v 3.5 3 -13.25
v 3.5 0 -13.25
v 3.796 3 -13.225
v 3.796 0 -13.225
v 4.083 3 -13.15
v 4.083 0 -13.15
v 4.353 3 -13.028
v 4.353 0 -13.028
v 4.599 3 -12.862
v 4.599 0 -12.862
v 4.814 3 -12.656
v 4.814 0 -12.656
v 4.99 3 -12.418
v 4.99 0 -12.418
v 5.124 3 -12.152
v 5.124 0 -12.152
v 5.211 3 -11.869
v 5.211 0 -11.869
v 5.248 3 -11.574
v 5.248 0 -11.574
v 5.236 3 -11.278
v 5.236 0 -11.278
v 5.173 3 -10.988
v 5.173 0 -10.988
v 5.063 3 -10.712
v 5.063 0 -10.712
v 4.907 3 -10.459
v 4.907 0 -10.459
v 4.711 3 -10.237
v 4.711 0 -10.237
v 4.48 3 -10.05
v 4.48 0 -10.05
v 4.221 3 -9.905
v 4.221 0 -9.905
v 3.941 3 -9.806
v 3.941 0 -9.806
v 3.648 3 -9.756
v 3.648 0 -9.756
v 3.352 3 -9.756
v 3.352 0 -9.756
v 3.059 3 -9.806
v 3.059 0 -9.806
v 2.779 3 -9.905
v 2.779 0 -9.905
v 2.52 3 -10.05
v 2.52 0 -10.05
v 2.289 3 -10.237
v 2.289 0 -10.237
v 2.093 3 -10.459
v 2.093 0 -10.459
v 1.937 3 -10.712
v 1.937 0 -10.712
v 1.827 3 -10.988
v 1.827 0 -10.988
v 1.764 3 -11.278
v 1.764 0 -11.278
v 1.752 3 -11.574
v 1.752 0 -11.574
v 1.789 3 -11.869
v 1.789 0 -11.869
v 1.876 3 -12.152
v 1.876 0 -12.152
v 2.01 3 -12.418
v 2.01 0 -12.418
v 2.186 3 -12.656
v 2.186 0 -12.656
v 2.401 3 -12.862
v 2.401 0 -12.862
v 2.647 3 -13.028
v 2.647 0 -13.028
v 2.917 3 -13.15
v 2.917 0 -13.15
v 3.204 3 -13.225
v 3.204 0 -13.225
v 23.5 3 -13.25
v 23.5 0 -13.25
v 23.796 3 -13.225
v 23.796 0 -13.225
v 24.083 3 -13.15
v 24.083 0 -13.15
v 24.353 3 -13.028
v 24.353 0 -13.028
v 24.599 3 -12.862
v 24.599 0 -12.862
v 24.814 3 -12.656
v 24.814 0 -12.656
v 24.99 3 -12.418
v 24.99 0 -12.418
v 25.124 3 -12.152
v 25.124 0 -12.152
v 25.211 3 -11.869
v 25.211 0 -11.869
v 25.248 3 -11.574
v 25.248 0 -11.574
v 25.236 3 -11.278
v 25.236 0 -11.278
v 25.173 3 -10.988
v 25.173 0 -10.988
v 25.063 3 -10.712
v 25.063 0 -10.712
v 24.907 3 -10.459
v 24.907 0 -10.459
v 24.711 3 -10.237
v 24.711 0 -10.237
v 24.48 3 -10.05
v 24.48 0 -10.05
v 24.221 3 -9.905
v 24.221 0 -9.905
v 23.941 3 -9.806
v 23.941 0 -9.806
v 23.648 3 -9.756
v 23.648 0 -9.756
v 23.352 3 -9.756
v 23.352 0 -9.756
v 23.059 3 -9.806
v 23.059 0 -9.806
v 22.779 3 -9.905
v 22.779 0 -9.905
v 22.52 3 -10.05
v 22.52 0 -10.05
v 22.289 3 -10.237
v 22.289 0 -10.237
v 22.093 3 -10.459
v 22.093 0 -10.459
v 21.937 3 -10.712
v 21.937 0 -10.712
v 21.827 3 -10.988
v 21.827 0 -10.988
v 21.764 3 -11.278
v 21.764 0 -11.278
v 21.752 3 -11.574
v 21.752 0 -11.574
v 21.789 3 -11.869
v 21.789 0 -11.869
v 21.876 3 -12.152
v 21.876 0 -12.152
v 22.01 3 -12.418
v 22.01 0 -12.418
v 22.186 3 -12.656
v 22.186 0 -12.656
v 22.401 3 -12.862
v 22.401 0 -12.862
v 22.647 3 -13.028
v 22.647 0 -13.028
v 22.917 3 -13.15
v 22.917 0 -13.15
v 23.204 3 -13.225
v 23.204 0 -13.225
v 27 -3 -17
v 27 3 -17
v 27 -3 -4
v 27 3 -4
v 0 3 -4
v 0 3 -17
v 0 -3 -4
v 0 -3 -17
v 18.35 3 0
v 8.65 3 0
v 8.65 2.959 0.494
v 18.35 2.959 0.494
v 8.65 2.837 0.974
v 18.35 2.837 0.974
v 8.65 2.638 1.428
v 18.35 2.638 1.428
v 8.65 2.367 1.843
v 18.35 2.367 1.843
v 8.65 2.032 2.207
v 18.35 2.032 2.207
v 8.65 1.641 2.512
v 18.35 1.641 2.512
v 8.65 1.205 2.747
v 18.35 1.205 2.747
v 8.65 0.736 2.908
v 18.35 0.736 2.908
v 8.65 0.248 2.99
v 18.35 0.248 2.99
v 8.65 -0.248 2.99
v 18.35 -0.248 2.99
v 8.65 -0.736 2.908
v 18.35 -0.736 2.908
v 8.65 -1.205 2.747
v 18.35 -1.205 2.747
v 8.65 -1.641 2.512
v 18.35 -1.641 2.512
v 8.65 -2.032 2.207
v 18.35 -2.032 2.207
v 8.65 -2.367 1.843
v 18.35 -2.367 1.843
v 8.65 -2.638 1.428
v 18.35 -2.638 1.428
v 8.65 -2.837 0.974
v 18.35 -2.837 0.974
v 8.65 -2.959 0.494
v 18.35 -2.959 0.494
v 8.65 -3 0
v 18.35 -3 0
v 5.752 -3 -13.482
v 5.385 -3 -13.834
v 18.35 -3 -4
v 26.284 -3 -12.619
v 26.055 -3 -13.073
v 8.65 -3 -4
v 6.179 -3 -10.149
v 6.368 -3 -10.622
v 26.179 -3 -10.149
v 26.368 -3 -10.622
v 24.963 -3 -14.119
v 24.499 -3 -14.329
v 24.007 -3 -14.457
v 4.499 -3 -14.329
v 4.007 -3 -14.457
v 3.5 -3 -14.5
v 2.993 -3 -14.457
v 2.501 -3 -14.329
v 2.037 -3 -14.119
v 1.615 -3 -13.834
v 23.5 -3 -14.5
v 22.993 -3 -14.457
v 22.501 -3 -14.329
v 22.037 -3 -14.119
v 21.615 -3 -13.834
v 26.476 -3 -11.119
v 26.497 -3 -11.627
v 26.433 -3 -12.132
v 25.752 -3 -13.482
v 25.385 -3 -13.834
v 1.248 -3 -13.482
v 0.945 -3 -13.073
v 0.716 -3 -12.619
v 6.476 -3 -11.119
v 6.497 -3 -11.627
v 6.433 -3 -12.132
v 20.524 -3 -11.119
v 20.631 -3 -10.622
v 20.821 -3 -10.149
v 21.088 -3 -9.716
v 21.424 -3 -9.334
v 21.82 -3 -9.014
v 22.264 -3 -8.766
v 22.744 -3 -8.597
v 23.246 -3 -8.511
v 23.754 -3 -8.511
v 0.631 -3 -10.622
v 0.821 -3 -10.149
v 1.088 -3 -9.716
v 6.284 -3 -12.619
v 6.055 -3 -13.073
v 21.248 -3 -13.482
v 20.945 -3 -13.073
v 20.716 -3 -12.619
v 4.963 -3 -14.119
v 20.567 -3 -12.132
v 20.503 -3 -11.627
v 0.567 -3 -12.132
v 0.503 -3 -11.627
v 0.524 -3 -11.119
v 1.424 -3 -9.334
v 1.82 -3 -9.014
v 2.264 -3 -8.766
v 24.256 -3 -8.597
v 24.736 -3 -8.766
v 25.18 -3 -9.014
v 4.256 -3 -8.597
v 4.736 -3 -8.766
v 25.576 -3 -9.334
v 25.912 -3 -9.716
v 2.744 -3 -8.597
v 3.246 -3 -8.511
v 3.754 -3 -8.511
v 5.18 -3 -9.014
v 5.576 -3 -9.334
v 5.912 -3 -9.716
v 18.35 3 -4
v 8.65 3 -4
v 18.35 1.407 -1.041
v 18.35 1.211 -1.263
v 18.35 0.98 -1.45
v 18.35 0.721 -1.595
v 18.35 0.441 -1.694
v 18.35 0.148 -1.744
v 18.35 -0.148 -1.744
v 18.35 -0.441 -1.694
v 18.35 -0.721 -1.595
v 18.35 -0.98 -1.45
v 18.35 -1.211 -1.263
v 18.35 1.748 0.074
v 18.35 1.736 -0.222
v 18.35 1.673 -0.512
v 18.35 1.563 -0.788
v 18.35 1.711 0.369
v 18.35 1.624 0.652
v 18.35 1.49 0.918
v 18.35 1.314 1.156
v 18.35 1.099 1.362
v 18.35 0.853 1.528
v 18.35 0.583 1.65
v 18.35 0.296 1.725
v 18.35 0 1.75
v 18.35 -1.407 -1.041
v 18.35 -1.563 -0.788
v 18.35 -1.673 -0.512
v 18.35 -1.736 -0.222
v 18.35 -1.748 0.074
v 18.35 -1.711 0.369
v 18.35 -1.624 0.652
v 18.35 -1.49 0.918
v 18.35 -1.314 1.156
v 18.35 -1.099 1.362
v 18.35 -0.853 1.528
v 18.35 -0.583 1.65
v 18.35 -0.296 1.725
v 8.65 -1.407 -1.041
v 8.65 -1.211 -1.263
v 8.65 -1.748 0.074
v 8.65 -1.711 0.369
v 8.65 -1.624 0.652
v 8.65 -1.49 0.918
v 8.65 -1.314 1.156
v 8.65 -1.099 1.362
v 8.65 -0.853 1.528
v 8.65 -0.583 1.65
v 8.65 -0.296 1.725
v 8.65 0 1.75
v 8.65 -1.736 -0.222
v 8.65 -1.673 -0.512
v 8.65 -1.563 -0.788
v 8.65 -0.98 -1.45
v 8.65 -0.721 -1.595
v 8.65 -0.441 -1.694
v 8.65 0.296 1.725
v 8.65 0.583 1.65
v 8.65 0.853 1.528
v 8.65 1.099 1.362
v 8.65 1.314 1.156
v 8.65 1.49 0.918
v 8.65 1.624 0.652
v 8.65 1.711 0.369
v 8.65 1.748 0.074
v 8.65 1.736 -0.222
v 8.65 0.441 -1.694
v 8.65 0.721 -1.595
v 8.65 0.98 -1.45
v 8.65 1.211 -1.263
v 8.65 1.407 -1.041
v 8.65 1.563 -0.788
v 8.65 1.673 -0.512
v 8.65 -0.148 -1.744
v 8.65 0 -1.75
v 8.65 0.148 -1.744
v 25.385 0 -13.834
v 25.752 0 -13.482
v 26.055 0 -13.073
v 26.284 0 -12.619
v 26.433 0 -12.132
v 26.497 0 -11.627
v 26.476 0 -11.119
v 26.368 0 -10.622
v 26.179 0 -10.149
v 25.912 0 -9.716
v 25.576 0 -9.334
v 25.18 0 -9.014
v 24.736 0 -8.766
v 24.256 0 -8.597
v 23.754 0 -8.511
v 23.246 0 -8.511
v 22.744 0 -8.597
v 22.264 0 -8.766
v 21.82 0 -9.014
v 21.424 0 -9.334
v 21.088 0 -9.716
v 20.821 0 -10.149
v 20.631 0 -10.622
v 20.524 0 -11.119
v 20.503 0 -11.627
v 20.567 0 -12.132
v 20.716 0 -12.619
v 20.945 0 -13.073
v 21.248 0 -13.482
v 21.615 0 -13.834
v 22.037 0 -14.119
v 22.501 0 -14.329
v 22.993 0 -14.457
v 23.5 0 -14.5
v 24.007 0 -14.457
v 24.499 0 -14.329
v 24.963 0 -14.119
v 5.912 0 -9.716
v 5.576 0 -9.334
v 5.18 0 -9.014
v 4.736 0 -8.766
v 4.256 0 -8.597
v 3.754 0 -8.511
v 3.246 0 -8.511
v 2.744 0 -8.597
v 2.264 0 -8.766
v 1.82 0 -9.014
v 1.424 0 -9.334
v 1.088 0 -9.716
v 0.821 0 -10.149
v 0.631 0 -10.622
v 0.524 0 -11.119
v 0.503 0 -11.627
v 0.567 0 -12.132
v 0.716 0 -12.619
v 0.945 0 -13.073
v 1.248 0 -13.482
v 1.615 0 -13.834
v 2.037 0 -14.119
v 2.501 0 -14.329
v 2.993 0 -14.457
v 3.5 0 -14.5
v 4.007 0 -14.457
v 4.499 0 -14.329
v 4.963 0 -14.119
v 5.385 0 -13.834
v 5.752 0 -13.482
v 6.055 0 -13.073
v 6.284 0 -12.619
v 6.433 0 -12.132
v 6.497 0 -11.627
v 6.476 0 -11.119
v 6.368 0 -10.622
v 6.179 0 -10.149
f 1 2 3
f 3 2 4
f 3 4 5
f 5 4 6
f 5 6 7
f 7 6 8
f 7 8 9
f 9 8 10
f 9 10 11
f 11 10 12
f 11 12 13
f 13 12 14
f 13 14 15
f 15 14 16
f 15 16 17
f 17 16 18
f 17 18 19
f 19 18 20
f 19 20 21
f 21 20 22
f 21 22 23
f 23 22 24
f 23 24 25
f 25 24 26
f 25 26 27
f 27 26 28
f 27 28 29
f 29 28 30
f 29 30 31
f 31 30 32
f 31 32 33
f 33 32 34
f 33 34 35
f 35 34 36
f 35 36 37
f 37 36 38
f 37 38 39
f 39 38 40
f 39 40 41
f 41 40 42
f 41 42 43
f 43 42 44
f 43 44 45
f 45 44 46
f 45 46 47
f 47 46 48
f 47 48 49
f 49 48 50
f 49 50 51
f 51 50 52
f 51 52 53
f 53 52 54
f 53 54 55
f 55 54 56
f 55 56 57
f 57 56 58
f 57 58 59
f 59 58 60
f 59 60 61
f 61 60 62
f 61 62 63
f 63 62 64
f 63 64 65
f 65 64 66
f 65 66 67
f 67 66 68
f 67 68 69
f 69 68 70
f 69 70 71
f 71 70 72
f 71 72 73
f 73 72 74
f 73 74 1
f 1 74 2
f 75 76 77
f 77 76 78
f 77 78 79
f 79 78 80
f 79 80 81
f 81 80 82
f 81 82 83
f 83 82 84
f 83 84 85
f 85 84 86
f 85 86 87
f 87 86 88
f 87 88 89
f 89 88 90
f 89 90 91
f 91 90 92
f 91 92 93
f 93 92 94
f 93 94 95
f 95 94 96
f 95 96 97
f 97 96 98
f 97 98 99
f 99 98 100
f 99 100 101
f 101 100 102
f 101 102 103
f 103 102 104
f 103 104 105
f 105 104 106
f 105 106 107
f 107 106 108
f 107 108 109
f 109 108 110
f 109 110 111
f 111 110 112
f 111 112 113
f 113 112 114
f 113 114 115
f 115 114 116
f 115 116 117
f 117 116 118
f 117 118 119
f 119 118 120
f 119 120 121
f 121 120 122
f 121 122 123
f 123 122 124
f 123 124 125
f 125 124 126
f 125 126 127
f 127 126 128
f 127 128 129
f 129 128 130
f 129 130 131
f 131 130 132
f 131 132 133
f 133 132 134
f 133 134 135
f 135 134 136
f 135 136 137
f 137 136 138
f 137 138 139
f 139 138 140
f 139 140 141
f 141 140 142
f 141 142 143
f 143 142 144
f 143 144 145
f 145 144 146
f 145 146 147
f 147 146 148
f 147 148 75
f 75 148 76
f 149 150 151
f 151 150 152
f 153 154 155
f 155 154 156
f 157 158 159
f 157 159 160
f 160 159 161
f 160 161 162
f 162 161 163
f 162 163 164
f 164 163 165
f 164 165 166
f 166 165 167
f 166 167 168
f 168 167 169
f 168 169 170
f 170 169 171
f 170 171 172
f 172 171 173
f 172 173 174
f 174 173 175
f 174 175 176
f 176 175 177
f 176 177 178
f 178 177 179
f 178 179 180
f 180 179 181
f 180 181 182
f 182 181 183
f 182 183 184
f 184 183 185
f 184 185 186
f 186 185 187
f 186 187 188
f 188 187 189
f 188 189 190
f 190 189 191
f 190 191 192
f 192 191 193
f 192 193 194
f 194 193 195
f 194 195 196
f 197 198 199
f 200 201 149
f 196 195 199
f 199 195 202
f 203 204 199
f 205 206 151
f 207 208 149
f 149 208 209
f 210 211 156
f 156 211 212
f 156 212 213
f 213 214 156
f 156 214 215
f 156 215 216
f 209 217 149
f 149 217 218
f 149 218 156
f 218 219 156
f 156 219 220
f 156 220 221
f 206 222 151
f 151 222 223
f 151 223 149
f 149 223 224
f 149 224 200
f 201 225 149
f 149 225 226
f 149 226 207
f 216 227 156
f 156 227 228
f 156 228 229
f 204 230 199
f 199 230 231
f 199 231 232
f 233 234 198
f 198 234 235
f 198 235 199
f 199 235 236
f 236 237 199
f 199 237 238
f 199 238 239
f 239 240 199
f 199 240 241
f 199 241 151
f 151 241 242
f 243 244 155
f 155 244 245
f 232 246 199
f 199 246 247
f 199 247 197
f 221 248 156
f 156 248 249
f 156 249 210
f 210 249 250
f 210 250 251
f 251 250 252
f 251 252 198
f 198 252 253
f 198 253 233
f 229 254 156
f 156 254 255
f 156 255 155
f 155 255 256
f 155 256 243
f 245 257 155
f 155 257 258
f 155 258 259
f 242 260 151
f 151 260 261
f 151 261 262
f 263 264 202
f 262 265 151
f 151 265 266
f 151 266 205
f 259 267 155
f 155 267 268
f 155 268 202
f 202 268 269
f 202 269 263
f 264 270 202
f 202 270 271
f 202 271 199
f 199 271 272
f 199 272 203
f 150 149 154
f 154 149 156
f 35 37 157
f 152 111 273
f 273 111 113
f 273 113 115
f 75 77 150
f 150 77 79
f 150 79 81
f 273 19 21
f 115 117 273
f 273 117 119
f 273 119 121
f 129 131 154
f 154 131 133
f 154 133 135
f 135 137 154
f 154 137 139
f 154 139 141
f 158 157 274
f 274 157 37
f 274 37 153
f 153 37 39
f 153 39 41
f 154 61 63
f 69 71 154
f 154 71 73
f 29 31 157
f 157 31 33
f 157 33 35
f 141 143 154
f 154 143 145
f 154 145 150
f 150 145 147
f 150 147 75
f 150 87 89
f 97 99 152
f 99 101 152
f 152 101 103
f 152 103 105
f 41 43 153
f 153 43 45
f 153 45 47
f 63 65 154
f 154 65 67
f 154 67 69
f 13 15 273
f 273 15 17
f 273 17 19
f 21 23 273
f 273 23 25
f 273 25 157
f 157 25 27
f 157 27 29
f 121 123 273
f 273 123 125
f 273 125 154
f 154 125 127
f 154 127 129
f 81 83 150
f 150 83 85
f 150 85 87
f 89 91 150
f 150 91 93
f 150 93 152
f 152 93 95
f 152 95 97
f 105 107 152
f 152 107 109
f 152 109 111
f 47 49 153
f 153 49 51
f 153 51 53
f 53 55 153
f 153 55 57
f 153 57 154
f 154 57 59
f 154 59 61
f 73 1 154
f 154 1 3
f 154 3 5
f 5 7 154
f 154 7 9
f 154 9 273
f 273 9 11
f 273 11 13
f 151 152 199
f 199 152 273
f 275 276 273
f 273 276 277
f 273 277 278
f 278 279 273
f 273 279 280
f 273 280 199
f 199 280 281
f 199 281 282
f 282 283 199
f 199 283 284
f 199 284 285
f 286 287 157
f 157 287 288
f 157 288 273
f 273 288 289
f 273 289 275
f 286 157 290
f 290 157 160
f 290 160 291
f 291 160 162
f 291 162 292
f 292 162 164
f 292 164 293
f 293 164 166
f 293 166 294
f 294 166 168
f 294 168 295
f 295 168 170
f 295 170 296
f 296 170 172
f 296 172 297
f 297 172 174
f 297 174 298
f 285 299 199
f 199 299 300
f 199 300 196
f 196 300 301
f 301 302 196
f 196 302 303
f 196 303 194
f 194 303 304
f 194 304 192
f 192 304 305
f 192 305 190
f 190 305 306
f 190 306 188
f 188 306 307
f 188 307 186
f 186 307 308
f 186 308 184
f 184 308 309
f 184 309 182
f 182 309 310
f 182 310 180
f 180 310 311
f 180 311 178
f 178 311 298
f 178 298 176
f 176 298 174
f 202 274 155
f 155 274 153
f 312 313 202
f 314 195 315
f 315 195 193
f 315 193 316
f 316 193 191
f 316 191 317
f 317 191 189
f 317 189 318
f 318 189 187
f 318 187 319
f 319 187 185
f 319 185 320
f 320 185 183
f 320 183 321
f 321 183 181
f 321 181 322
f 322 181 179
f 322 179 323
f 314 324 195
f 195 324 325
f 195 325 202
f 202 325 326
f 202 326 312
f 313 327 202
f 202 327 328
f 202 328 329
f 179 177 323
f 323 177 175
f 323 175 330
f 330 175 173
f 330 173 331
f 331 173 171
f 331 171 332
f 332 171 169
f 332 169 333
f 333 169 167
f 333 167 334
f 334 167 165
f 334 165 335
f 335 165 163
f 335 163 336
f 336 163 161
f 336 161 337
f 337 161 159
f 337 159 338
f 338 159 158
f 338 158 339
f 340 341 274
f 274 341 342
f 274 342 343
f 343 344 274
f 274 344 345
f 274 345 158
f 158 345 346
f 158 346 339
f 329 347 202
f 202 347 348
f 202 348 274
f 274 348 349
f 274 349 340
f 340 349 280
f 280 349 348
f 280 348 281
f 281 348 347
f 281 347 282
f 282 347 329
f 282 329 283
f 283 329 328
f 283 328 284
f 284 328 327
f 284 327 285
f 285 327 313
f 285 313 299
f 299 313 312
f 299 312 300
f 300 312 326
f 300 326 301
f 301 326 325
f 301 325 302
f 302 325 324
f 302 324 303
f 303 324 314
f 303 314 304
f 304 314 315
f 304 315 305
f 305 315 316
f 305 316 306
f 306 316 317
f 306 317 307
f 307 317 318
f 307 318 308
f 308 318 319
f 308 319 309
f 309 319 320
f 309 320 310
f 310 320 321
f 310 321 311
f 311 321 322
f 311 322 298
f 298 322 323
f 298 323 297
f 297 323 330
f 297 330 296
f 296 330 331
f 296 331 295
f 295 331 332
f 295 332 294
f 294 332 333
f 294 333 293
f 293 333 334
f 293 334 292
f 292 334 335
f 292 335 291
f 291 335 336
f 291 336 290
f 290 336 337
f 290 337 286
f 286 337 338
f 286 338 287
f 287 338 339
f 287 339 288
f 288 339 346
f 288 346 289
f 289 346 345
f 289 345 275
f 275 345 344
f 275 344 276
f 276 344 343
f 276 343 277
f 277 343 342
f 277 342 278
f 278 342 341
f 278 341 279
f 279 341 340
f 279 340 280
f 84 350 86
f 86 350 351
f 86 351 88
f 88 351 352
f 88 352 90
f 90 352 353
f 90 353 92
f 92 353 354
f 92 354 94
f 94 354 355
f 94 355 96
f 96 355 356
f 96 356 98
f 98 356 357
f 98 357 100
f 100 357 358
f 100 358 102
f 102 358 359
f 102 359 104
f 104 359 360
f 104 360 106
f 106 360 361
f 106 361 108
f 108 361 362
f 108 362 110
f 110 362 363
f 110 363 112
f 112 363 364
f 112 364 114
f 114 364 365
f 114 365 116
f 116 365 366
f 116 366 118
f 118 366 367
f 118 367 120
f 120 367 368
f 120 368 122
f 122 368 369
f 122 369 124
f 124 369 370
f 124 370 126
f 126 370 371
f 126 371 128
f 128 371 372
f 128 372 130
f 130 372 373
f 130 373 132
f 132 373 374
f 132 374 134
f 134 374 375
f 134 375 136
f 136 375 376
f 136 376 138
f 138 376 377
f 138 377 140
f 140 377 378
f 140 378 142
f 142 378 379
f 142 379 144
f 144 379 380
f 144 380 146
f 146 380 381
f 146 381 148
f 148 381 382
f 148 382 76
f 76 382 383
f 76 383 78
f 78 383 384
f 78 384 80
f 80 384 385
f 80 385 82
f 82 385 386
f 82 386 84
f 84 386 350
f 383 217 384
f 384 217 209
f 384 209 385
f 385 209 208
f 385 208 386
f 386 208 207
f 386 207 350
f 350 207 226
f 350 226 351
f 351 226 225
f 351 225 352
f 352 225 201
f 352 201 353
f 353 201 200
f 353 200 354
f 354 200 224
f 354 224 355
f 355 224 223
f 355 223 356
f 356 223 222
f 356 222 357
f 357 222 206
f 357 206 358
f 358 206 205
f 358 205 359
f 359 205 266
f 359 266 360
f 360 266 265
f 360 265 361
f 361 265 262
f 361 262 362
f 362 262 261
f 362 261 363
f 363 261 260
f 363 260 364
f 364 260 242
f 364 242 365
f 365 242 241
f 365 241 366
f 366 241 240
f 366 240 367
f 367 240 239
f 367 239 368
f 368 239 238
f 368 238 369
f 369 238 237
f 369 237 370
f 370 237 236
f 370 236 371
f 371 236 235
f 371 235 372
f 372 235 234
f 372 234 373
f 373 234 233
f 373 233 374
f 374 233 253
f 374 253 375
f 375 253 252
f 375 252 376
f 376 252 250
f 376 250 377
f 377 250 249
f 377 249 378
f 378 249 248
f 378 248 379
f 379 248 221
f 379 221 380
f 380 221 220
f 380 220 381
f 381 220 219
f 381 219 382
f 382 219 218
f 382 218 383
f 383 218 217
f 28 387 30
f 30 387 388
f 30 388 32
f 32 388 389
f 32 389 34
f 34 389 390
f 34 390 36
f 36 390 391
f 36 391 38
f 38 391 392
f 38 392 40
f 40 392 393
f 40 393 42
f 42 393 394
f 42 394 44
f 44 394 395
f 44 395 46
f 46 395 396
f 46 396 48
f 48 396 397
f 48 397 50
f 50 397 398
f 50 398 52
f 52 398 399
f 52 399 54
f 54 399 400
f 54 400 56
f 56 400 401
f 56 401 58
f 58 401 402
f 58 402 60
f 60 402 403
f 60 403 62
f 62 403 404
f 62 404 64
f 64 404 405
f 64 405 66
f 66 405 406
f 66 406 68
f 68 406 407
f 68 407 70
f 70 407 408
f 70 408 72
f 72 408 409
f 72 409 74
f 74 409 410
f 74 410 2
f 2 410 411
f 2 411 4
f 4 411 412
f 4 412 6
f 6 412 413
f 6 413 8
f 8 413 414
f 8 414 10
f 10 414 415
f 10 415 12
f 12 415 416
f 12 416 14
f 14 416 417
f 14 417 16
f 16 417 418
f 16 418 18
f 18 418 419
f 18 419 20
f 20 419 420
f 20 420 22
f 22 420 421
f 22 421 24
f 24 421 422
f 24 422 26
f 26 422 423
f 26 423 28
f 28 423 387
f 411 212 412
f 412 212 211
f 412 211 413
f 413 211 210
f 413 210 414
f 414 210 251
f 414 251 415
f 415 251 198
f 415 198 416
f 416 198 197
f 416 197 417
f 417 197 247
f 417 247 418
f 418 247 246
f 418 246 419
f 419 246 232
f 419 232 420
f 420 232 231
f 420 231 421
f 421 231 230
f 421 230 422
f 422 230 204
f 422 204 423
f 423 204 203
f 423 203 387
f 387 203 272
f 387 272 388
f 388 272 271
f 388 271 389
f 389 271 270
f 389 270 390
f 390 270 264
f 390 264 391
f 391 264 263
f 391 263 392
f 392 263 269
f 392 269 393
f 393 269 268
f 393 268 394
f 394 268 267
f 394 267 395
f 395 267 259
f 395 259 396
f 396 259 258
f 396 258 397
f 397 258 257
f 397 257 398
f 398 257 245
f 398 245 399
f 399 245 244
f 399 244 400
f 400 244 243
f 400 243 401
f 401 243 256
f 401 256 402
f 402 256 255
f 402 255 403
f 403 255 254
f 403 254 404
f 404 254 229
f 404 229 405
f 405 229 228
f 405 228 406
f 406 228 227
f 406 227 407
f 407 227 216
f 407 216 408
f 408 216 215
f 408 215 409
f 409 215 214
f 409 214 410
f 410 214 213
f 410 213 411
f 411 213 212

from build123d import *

# Parameters (mm, degrees)
SKETCH2_R           = 1.75
BOSS_EXTRUDE2_DEPTH = 27
SKETCH3_R           = 1.75
SKETCH3_W           = 8.65
SKETCH3_H           = 7
CUT_EXTRUDE1_DEPTH  = 30
SKETCH4_R           = 3
CUT_EXTRUDE2_DEPTH  = 3


with BuildPart() as part:
    # Sketch2 → Boss-Extrude2 (new body)
    with BuildSketch(Plane(origin=(0, 0, 0), x_dir=(0, 0, -1), z_dir=(1, 0, 0))):
        with BuildLine():
            Line((0, -3), (17, -3))
            Line((17, -3), (17, 3))
            Line((17, 3), (0, 3))
            ThreePointArc((0, 3), (-3, 0), (0, -3))
        make_face()
        Circle(SKETCH2_R, mode=Mode.SUBTRACT)
    extrude(amount=BOSS_EXTRUDE2_DEPTH)

    # Sketch3 → Cut-Extrude1 (cut)
    with BuildSketch(Plane.XZ.offset(3)):
        with Locations((3.5, -11.5)):
            Circle(SKETCH3_R)
        with Locations((23.5, -11.5)):
            Circle(SKETCH3_R)
        with Locations((22.675, -0.5)):
            Rectangle(SKETCH3_W, SKETCH3_H)
        with Locations((4.325, -0.5)):
            Rectangle(SKETCH3_W, SKETCH3_H)
    extrude(amount=-CUT_EXTRUDE1_DEPTH, mode=Mode.SUBTRACT)

    # Sketch4 → Cut-Extrude2 (cut)
    with BuildSketch(Plane.XZ.offset(3)):
        with Locations((3.5, -11.5)):
            Circle(SKETCH4_R)
        with Locations((23.5, -11.5)):
            Circle(SKETCH4_R)
    extrude(amount=-CUT_EXTRUDE2_DEPTH, mode=Mode.SUBTRACT)


solid = part.part
